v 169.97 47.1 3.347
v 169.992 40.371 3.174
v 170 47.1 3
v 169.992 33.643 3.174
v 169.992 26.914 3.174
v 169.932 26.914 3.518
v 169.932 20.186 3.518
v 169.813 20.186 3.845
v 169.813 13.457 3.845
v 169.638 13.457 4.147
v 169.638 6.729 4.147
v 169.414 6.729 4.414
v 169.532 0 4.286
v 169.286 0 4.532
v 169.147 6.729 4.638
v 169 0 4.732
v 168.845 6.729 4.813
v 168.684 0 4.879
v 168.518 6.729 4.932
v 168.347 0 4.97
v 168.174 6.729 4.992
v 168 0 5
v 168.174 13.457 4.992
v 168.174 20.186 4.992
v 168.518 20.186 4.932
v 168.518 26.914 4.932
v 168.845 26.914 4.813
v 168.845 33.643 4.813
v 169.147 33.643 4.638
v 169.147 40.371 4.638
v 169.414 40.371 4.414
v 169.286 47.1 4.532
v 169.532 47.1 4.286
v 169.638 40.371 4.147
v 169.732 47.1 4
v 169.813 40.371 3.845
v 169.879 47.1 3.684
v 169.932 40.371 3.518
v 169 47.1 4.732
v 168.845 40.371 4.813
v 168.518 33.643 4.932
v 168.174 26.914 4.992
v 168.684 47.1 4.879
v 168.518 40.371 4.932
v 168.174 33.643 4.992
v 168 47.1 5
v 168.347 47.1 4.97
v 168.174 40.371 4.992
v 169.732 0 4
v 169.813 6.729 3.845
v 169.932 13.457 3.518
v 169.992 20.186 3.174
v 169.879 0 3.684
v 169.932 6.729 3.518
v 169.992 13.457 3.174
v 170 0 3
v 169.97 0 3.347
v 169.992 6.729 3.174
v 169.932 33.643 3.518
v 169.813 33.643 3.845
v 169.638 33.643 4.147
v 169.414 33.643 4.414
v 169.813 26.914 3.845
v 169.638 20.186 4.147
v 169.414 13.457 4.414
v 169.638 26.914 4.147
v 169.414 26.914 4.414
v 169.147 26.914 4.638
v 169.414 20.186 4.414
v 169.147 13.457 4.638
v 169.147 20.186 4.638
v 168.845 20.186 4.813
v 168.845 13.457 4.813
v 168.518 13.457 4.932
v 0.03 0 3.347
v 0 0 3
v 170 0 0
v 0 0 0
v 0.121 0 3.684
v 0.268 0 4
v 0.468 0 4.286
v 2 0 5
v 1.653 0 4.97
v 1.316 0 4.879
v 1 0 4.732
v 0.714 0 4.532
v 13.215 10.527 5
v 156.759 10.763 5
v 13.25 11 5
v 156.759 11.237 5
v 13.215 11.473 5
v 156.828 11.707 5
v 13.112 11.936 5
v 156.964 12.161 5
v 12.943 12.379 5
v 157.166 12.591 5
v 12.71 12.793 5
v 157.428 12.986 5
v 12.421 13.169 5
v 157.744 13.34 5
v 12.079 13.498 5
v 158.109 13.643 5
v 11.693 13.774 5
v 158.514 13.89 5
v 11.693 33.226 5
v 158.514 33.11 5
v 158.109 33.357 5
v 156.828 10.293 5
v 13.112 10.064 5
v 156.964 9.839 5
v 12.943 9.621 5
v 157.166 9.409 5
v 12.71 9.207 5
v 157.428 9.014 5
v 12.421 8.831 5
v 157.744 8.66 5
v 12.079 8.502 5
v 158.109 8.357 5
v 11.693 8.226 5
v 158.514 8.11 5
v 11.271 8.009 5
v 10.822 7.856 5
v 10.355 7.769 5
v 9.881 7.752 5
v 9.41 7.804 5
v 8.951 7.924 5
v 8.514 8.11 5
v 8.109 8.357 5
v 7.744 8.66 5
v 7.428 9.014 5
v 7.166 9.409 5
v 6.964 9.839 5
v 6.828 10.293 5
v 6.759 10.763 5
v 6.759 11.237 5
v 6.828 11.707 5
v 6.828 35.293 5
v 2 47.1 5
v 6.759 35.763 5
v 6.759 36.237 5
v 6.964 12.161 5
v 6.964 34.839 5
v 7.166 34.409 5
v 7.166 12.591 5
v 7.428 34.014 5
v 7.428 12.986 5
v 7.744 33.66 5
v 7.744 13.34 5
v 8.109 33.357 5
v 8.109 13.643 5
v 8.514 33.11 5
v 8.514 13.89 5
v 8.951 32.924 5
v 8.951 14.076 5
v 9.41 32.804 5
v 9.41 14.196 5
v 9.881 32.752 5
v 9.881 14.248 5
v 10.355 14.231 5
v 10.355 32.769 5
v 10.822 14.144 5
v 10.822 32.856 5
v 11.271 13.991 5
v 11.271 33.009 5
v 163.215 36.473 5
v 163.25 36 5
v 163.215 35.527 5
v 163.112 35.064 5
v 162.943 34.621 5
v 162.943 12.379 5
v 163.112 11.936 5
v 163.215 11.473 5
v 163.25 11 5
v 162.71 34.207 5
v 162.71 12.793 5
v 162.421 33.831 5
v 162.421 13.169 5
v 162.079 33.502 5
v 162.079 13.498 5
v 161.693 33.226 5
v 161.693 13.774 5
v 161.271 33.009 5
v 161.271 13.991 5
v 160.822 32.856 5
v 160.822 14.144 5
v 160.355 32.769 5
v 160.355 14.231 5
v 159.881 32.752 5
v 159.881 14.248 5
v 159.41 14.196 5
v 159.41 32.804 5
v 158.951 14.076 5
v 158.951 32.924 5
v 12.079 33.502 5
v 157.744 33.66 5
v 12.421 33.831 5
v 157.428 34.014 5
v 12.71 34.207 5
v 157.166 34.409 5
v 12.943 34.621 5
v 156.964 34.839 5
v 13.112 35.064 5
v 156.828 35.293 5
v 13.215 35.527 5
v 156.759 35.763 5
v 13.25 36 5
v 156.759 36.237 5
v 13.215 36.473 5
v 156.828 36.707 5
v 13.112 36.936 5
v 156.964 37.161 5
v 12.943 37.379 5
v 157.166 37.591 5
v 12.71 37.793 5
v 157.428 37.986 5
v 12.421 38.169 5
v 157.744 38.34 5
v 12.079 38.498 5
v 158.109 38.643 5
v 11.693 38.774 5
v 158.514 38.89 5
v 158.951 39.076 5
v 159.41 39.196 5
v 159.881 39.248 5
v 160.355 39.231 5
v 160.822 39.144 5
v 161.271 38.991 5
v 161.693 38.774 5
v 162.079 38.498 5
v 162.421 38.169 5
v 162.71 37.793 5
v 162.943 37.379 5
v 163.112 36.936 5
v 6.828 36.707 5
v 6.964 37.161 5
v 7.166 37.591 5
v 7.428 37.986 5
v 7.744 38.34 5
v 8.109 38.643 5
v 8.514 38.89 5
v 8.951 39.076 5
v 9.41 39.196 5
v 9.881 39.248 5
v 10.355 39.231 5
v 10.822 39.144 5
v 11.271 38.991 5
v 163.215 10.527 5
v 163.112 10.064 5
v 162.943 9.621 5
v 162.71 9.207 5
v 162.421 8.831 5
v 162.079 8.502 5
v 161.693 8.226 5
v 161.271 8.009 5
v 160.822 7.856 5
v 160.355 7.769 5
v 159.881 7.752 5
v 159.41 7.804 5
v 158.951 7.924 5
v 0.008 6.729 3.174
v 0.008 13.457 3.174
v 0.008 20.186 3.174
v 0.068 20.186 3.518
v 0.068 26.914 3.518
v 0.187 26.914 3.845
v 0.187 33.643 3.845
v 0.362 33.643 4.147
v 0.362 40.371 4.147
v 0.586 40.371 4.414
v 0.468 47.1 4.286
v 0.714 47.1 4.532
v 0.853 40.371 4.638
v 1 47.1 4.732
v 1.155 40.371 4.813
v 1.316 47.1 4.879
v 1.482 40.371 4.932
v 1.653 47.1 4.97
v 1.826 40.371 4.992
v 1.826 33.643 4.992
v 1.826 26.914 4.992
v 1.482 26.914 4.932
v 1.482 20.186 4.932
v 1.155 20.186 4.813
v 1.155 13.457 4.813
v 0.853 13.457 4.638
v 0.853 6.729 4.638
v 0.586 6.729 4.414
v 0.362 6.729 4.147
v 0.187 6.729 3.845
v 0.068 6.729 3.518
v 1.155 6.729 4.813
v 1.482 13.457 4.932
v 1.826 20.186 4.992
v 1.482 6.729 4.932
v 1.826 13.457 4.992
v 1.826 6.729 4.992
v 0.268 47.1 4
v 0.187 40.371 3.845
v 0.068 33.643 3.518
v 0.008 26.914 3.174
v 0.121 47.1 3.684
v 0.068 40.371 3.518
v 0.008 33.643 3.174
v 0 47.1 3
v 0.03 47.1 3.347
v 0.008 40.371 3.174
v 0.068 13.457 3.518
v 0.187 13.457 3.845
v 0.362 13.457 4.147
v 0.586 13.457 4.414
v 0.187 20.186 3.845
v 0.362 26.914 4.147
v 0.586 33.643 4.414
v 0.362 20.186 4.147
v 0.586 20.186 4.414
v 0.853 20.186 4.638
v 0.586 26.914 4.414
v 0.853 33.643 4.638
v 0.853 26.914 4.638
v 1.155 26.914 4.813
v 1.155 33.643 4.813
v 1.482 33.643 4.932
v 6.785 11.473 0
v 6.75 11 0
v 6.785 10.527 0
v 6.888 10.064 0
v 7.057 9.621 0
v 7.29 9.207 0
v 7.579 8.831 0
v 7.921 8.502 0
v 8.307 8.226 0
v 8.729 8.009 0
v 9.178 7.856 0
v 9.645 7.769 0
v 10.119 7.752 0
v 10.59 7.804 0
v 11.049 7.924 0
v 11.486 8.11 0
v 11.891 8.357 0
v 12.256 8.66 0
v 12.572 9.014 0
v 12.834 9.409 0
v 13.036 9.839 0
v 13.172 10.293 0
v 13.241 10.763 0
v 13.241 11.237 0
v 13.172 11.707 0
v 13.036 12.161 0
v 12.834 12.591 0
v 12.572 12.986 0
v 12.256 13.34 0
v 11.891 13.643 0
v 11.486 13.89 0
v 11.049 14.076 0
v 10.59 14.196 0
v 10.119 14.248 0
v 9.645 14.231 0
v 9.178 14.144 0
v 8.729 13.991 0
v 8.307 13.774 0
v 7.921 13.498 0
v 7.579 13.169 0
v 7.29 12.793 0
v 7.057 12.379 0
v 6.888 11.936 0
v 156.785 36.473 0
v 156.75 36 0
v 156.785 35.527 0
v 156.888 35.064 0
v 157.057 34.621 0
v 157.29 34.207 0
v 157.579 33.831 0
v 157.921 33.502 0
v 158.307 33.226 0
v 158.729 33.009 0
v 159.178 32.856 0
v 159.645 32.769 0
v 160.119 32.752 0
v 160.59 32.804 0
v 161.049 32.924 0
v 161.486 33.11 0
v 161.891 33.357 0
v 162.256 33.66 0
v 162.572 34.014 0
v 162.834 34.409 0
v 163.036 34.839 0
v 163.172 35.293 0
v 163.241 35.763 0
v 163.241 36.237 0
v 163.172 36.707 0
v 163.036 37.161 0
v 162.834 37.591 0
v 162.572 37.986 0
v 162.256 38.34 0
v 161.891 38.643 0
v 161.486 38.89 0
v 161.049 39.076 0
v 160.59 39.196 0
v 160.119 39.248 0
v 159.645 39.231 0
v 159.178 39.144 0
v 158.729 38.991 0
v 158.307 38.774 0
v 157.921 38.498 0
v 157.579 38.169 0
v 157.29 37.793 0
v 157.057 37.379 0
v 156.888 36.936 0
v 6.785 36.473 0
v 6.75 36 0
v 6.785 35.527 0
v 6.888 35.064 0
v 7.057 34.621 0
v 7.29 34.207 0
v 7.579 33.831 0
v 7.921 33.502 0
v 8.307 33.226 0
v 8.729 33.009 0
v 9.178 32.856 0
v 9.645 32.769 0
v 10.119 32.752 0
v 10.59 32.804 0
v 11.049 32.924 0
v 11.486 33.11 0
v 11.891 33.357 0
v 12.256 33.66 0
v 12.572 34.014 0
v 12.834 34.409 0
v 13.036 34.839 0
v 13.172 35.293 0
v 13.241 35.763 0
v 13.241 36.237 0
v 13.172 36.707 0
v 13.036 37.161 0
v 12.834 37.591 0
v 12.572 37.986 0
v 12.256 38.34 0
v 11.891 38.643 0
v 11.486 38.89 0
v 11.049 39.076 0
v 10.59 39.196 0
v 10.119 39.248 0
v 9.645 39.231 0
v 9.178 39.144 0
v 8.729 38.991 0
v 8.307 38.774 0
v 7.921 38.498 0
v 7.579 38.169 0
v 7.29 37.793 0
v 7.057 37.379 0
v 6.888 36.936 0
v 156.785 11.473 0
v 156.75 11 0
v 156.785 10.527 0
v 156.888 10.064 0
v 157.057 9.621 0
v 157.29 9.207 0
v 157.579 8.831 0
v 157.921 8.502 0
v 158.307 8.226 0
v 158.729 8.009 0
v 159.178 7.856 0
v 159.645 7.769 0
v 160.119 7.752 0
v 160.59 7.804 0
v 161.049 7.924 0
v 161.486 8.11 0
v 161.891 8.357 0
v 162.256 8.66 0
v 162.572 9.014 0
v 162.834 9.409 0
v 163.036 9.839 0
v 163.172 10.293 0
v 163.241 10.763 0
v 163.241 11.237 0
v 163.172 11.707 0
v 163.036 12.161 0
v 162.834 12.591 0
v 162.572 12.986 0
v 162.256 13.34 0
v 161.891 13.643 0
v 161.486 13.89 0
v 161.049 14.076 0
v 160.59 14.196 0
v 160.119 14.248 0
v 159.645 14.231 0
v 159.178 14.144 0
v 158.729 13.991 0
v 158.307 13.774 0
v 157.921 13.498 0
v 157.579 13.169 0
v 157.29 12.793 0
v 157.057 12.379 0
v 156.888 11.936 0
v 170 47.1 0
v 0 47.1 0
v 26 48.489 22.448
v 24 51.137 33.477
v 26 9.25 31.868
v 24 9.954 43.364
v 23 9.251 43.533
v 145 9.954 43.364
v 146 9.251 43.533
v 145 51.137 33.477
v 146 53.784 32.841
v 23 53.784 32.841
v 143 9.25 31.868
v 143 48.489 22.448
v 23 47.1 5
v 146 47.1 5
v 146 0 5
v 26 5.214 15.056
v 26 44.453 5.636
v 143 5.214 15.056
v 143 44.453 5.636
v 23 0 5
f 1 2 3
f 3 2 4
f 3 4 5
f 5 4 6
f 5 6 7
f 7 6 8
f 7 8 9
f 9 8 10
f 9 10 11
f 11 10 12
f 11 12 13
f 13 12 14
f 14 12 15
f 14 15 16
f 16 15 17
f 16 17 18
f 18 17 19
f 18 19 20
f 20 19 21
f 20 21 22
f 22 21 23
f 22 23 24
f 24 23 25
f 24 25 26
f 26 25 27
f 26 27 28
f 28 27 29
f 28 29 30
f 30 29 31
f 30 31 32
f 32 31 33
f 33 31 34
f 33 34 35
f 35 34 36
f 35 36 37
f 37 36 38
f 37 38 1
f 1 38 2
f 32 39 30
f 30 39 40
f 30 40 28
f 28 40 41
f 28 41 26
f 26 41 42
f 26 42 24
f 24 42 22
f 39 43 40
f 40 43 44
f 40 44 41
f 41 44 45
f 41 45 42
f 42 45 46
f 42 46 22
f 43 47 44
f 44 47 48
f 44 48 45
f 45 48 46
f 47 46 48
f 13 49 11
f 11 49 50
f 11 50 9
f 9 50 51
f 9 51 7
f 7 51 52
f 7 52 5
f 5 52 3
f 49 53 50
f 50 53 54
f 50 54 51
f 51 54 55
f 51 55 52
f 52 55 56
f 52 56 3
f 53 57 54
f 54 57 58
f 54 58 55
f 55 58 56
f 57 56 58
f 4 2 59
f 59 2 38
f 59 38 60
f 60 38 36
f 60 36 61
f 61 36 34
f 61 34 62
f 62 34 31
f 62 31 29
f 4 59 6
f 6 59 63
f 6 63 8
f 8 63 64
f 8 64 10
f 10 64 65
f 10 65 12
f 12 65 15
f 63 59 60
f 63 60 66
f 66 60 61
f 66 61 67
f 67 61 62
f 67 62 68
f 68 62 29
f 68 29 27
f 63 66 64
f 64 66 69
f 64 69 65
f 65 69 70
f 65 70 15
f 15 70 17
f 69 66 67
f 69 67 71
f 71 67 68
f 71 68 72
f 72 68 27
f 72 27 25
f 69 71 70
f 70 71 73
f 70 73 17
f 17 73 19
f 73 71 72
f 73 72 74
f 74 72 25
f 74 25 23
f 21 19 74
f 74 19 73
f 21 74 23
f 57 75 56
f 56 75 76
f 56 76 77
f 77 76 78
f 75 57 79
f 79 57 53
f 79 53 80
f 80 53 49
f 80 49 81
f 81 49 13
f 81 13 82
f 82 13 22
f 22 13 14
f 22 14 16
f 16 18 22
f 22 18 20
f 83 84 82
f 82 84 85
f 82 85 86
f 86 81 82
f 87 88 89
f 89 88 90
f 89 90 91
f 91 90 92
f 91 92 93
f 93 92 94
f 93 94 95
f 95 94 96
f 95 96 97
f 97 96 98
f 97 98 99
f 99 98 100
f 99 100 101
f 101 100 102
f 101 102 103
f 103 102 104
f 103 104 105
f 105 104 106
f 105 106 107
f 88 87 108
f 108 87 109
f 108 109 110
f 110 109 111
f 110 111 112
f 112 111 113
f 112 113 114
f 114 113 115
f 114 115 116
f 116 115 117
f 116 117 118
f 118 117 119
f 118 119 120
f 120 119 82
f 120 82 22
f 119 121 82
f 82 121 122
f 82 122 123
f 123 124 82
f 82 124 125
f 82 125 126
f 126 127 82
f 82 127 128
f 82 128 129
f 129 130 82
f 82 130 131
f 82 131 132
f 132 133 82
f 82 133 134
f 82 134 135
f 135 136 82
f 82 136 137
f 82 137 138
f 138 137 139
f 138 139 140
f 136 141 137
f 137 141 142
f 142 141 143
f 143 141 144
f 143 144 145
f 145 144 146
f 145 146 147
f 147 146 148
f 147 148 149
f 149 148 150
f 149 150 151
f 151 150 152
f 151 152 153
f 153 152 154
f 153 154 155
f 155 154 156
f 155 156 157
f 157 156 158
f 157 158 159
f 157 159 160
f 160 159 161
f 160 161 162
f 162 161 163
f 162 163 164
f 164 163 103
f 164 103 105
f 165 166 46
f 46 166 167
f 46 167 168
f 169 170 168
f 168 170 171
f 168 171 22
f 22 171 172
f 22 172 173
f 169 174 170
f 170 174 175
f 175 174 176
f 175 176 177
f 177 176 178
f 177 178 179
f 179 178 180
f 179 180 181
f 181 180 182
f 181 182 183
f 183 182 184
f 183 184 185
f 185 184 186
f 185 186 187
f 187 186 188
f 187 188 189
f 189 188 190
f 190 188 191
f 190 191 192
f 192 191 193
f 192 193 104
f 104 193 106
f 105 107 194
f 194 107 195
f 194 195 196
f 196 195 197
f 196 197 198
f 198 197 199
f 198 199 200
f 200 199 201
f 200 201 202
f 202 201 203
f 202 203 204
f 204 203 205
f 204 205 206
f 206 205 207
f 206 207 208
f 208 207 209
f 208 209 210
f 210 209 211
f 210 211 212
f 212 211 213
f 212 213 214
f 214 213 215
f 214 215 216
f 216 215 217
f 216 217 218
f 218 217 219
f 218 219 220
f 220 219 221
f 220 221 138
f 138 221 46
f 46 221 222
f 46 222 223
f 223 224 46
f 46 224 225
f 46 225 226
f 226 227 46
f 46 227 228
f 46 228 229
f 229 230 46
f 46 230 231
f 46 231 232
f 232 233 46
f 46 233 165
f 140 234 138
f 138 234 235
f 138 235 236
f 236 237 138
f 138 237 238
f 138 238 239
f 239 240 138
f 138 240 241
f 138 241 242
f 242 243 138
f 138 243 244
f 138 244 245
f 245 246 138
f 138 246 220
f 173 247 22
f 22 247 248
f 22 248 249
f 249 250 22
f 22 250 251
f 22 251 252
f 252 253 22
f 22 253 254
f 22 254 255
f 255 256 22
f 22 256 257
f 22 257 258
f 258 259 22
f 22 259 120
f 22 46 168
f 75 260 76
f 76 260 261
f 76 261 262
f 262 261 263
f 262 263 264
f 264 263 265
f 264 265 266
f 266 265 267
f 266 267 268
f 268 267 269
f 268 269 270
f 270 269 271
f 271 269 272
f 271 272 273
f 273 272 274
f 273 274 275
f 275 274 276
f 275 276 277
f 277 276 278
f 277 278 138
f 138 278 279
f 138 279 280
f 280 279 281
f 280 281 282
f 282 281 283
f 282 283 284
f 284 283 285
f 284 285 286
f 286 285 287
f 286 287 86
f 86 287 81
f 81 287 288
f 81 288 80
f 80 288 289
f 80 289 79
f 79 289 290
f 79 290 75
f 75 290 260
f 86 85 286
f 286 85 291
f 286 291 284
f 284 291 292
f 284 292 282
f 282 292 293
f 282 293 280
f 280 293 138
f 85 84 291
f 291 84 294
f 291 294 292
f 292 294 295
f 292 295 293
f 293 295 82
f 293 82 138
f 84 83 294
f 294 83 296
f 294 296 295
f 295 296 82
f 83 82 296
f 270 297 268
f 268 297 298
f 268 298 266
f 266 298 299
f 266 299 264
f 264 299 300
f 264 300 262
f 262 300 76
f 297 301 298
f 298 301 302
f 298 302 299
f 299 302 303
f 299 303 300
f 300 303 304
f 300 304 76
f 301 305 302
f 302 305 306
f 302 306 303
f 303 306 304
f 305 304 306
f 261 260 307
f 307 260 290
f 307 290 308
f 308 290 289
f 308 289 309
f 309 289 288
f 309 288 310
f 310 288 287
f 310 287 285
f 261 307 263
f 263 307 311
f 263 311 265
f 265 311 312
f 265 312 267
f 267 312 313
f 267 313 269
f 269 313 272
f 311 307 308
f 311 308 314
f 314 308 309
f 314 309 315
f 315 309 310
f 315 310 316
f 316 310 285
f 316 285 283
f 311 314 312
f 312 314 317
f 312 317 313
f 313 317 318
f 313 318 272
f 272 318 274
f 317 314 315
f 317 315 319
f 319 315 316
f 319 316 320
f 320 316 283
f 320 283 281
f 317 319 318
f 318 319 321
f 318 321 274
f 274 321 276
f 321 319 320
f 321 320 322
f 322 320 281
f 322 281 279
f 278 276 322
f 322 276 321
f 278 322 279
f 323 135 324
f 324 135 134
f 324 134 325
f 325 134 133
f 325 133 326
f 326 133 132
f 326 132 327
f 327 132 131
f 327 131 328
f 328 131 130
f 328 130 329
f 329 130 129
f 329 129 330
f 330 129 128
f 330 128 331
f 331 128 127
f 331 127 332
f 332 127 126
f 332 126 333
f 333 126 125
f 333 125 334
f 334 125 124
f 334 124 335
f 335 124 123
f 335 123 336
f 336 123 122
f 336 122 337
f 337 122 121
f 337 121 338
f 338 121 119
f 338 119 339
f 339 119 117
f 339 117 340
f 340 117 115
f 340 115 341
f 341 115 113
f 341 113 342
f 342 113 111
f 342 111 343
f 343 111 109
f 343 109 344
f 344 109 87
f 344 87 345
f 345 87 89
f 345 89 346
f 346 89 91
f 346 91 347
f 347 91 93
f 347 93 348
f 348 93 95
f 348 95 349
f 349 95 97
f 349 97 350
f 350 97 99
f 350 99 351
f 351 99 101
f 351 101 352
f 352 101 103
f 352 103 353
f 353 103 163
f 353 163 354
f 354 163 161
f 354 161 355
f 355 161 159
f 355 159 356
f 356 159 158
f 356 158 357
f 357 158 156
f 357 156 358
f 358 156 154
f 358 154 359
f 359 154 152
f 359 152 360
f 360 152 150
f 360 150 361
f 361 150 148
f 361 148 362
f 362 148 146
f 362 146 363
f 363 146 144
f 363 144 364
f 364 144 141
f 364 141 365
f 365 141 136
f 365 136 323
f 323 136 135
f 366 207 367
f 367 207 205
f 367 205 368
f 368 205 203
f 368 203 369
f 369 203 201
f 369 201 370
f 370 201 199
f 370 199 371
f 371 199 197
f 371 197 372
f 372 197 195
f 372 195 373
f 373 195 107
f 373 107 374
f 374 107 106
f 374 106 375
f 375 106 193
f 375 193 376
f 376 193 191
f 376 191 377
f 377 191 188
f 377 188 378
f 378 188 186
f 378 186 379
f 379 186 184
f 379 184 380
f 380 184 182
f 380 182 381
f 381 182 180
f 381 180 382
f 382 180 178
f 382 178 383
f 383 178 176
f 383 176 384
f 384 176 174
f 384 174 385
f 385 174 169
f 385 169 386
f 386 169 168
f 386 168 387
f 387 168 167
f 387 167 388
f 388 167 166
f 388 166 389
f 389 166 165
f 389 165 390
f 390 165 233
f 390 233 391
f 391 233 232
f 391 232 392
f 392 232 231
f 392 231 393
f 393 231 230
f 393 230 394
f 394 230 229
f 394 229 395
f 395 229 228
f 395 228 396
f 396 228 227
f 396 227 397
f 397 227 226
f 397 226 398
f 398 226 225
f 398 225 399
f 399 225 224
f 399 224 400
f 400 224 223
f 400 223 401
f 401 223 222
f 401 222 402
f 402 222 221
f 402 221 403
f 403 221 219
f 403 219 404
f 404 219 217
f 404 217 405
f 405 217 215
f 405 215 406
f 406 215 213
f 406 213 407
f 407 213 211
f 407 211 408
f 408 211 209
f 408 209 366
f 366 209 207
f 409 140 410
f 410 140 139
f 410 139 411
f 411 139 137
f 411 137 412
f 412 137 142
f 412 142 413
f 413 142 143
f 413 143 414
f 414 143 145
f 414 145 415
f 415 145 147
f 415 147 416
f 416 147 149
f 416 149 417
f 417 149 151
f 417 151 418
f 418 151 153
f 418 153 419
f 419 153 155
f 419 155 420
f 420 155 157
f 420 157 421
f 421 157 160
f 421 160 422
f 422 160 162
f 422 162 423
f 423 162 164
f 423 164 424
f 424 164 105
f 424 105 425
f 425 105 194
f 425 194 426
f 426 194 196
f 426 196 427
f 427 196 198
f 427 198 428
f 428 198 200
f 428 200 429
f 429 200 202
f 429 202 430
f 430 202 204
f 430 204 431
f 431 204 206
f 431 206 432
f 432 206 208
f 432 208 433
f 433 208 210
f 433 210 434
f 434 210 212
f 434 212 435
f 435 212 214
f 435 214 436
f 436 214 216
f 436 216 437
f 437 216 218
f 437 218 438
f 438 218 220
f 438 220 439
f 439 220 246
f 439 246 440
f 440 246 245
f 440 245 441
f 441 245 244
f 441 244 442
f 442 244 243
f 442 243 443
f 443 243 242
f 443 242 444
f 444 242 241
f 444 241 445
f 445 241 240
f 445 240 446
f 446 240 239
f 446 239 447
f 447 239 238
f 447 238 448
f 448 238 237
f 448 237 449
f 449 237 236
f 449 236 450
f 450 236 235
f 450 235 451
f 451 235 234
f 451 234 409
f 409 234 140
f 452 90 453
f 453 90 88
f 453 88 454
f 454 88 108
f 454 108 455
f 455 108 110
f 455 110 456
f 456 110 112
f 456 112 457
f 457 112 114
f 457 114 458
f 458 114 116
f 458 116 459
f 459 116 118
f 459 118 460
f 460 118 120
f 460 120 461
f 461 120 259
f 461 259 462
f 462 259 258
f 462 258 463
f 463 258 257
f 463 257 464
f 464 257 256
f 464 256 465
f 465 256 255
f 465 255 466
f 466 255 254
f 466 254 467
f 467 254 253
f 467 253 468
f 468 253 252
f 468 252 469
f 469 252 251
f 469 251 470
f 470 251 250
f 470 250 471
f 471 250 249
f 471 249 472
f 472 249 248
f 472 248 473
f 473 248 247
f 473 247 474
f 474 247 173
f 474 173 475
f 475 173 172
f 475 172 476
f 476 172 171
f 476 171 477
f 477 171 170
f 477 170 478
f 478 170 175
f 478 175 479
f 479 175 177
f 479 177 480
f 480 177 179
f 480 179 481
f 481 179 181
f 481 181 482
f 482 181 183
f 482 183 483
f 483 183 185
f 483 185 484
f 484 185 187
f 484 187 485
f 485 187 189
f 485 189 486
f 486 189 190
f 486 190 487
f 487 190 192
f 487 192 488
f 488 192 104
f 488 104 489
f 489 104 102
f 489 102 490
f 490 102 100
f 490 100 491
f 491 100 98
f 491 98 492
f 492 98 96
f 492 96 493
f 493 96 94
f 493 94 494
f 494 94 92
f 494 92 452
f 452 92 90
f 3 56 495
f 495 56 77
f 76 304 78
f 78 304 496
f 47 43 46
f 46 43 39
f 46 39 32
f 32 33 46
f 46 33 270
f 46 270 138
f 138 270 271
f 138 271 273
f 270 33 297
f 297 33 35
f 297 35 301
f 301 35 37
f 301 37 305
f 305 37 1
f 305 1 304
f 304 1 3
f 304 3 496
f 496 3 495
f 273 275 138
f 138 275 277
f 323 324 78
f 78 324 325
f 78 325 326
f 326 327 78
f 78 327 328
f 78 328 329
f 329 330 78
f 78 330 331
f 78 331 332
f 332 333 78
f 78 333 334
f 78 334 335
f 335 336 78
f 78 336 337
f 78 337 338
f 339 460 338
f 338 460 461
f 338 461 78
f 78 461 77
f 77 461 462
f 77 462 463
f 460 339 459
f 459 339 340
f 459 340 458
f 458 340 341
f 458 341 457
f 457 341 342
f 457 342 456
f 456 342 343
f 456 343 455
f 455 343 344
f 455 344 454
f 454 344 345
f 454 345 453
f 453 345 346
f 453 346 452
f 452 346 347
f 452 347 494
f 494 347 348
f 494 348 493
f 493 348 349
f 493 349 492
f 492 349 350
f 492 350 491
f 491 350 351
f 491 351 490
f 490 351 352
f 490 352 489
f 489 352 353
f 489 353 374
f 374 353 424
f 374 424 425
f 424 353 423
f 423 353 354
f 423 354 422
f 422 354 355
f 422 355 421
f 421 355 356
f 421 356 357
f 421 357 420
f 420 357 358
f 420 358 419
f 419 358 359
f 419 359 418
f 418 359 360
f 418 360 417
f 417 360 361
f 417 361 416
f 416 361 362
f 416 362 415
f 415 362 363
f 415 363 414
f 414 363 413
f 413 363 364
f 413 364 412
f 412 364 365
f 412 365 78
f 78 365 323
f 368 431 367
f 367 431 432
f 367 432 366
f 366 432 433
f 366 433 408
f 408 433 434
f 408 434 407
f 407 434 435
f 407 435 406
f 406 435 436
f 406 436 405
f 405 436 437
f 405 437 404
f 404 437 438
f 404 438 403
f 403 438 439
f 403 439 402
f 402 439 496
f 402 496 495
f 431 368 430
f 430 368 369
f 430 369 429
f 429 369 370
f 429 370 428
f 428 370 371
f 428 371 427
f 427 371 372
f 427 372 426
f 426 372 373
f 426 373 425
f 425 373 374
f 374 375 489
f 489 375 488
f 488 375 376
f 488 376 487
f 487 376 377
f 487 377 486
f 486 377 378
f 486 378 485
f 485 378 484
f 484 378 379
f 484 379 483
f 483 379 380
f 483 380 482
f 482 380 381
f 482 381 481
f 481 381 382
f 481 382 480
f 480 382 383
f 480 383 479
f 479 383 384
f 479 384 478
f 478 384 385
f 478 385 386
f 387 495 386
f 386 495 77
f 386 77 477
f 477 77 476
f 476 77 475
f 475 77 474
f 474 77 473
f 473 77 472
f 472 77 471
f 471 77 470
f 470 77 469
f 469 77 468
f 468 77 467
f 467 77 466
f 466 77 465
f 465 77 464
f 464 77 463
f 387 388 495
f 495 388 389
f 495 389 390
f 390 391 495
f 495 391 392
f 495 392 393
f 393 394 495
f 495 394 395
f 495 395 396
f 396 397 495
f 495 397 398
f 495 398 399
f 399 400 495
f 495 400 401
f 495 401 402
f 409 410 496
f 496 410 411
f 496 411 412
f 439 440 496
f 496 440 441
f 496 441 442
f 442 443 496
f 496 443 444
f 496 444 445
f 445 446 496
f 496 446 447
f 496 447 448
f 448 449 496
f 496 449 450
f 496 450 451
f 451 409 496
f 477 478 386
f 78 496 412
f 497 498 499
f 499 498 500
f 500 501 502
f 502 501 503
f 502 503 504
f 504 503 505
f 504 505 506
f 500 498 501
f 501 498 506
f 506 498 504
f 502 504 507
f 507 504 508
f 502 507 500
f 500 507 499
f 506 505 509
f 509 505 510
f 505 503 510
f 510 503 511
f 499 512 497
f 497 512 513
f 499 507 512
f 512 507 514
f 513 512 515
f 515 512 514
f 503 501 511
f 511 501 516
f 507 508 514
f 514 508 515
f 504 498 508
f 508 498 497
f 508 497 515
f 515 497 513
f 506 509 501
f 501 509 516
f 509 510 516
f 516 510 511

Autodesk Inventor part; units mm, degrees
ref_plane "YZ Plane" through (0, 0, 0) normal (1, 0, 0) x (0, 1, 0)
ref_plane "XZ Plane" through (0, 0, 0) normal (0, 1, 0) x (-1, 0, 0)
ref_plane "XY Plane" through (0, 0, 0) normal (0, 0, 1) x (1, 0, 0)
sketch "Sketch1" plane through (0, 0, 0) normal (0, 0, 1) x (1, 0, 0)
  line L0 (0, 0) -> (170, 0)
  line L1 (170, 0) -> (170, 47.1)
  line L2 (170, 47.1) -> (0, 47.1)
  line L3 (0, 47.1) -> (0, 0)
  dimension "d0" = 170
  dimension "d1" = 47.1
extrude "Extrusion1" add sketch "Sketch1" along normal blind 5
sketch "Sketch2" plane through (0, 0, 5) normal (0, 0, 1) x (1, 0, 0)
  line L0 (0, 0) -> (170, 0) projected
  line L1 (170, 47.1) -> (0, 47.1) projected
  line L2 (146, 0) -> (23, 0)
  line L3 (23, 0) -> (23, 47.1)
  line L4 (23, 47.1) -> (146, 47.1)
  line L5 (146, 47.1) -> (146, 0)
  line L6 (143, 2.8) -> (26, 2.8)
  line L7 (26, 2.8) -> (26, 44.3)
  line L8 (26, 44.3) -> (143, 44.3)
  line L9 (143, 44.3) -> (143, 2.8)
  line L10 (170, 0) -> (170, 47.1) projected
  point P0 (146, 47.1)
  point P1 (23, 0)
  dimension "d4" = 123
  dimension "d5" = 117
  dimension "d6" = 3
  dimension "d7" = 2.8
  dimension "d8" = 2.8
  dimension "d9" = 24
sketch "Sketch3" plane through (0, 0, 5) normal (0, 0, 1) x (1, 0, 0)
  circle A0 centre (160, 11) radius 3.25
  circle A1 centre (160, 36) radius 3.25
  line L0 (170, 0) -> (170, 47.1) projected
  line L1 (0, 0) -> (170, 0) projected
  line L2 (85, -16.6248) -> (85, 70.7208)
  line L3 (0, 47.1) -> (0, 0) projected
  circle A2 centre (10, 11) radius 3.25
  circle A3 centre (10, 36) radius 3.25
  point P0 (146, 0)
  dimension "d21" = 6.5
  dimension "d22" = 6.5
  dimension "d23" = 10
  dimension "d24" = 10
  dimension "d25" = 25
  dimension "d26" = 11
  dimension "d27" = 85
extrude "Extrusion3" cut sketch "Sketch3" against normal blind 60
sketch "Sketch4" plane through (0, 0, 0) normal (-1, 0, 0) x (0, 0, 1)
  line L0 (5, 0) -> (5, 47) projected
  line L1 (5, 23.5) -> (58.7, 36.3922)
  point P0 (0, 0)
  dimension "d30" = 76.5
sweep "Sweep1" add profiles "Sketch2" path "Sketch4" separate body path curves L1 contours L3 L1 L5 L0
sketch "Sketch5" plane through (23, 0, 5) normal (-1, 0, 0) x (0, 0, 1)
  line L0 (0, 47.1) -> (53.7, 59.9922) projected
  line L1 (0, 47.1) -> (10.6915, 2.5668)
  line L2 (0, 0) -> (53.7, 12.8922) projected
  line L3 (0, 47.1) -> (0, 0) projected
  line L4 (0, 0) -> (0, 47.1)
  point P0 (-5, 0)
  dimension "d42" = 13.5
extrude "Extrusion4" add sketch "Sketch5" against normal up to surface (123 mm away) bodies 2
sketch "Sketch6" plane through (23, 0, 5) normal (-1, 0, 0) x (0, 0, 1)
  line L0 (0, 0) -> (53.7, 12.8922) projected
  line L1 (53.7, 59.9922) -> (53.7, 12.8922)
  line L2 (0, 47.1) -> (53.7, 59.9922) projected
  line L3 (53.7, 59.9922) -> (27.8412, 53.7841)
  line L4 (27.8412, 53.7841) -> (38.5327, 9.2509)
  line L5 (0, 0) -> (53.7, 12.8922) projected
  line L6 (38.5327, 9.2509) -> (53.7, 12.8922)
  point P0 (-5, 0)
  point P1 (38.5327, 9.2509)
  dimension "d59" = 13.5
extrude "Extrusion5" cut sketch "Sketch6" against normal through all bodies 2
fillet "Fillet3" radius 2 2 edges at (0, 23.55, 5) (170, 23.55, 5)
chamfer "Chamfer11" distance 2 angle 80 1 edges at (84.5, 11.8983, 42.8971) measured on face at (65, 10.1333, 43.3208)
chamfer "Chamfer12" distance 2 angle 80 1 edges at (143, 31.5175, 38.1869) measured on face at (104, 52.9016, 33.0531)
chamfer "Chamfer13" distance 2 angle 80 1 edges at (26, 31.5175, 38.1869) measured on face at (104, 52.9016, 33.0531)
properties part number "FlaskHolderTilted_13_1_final"
